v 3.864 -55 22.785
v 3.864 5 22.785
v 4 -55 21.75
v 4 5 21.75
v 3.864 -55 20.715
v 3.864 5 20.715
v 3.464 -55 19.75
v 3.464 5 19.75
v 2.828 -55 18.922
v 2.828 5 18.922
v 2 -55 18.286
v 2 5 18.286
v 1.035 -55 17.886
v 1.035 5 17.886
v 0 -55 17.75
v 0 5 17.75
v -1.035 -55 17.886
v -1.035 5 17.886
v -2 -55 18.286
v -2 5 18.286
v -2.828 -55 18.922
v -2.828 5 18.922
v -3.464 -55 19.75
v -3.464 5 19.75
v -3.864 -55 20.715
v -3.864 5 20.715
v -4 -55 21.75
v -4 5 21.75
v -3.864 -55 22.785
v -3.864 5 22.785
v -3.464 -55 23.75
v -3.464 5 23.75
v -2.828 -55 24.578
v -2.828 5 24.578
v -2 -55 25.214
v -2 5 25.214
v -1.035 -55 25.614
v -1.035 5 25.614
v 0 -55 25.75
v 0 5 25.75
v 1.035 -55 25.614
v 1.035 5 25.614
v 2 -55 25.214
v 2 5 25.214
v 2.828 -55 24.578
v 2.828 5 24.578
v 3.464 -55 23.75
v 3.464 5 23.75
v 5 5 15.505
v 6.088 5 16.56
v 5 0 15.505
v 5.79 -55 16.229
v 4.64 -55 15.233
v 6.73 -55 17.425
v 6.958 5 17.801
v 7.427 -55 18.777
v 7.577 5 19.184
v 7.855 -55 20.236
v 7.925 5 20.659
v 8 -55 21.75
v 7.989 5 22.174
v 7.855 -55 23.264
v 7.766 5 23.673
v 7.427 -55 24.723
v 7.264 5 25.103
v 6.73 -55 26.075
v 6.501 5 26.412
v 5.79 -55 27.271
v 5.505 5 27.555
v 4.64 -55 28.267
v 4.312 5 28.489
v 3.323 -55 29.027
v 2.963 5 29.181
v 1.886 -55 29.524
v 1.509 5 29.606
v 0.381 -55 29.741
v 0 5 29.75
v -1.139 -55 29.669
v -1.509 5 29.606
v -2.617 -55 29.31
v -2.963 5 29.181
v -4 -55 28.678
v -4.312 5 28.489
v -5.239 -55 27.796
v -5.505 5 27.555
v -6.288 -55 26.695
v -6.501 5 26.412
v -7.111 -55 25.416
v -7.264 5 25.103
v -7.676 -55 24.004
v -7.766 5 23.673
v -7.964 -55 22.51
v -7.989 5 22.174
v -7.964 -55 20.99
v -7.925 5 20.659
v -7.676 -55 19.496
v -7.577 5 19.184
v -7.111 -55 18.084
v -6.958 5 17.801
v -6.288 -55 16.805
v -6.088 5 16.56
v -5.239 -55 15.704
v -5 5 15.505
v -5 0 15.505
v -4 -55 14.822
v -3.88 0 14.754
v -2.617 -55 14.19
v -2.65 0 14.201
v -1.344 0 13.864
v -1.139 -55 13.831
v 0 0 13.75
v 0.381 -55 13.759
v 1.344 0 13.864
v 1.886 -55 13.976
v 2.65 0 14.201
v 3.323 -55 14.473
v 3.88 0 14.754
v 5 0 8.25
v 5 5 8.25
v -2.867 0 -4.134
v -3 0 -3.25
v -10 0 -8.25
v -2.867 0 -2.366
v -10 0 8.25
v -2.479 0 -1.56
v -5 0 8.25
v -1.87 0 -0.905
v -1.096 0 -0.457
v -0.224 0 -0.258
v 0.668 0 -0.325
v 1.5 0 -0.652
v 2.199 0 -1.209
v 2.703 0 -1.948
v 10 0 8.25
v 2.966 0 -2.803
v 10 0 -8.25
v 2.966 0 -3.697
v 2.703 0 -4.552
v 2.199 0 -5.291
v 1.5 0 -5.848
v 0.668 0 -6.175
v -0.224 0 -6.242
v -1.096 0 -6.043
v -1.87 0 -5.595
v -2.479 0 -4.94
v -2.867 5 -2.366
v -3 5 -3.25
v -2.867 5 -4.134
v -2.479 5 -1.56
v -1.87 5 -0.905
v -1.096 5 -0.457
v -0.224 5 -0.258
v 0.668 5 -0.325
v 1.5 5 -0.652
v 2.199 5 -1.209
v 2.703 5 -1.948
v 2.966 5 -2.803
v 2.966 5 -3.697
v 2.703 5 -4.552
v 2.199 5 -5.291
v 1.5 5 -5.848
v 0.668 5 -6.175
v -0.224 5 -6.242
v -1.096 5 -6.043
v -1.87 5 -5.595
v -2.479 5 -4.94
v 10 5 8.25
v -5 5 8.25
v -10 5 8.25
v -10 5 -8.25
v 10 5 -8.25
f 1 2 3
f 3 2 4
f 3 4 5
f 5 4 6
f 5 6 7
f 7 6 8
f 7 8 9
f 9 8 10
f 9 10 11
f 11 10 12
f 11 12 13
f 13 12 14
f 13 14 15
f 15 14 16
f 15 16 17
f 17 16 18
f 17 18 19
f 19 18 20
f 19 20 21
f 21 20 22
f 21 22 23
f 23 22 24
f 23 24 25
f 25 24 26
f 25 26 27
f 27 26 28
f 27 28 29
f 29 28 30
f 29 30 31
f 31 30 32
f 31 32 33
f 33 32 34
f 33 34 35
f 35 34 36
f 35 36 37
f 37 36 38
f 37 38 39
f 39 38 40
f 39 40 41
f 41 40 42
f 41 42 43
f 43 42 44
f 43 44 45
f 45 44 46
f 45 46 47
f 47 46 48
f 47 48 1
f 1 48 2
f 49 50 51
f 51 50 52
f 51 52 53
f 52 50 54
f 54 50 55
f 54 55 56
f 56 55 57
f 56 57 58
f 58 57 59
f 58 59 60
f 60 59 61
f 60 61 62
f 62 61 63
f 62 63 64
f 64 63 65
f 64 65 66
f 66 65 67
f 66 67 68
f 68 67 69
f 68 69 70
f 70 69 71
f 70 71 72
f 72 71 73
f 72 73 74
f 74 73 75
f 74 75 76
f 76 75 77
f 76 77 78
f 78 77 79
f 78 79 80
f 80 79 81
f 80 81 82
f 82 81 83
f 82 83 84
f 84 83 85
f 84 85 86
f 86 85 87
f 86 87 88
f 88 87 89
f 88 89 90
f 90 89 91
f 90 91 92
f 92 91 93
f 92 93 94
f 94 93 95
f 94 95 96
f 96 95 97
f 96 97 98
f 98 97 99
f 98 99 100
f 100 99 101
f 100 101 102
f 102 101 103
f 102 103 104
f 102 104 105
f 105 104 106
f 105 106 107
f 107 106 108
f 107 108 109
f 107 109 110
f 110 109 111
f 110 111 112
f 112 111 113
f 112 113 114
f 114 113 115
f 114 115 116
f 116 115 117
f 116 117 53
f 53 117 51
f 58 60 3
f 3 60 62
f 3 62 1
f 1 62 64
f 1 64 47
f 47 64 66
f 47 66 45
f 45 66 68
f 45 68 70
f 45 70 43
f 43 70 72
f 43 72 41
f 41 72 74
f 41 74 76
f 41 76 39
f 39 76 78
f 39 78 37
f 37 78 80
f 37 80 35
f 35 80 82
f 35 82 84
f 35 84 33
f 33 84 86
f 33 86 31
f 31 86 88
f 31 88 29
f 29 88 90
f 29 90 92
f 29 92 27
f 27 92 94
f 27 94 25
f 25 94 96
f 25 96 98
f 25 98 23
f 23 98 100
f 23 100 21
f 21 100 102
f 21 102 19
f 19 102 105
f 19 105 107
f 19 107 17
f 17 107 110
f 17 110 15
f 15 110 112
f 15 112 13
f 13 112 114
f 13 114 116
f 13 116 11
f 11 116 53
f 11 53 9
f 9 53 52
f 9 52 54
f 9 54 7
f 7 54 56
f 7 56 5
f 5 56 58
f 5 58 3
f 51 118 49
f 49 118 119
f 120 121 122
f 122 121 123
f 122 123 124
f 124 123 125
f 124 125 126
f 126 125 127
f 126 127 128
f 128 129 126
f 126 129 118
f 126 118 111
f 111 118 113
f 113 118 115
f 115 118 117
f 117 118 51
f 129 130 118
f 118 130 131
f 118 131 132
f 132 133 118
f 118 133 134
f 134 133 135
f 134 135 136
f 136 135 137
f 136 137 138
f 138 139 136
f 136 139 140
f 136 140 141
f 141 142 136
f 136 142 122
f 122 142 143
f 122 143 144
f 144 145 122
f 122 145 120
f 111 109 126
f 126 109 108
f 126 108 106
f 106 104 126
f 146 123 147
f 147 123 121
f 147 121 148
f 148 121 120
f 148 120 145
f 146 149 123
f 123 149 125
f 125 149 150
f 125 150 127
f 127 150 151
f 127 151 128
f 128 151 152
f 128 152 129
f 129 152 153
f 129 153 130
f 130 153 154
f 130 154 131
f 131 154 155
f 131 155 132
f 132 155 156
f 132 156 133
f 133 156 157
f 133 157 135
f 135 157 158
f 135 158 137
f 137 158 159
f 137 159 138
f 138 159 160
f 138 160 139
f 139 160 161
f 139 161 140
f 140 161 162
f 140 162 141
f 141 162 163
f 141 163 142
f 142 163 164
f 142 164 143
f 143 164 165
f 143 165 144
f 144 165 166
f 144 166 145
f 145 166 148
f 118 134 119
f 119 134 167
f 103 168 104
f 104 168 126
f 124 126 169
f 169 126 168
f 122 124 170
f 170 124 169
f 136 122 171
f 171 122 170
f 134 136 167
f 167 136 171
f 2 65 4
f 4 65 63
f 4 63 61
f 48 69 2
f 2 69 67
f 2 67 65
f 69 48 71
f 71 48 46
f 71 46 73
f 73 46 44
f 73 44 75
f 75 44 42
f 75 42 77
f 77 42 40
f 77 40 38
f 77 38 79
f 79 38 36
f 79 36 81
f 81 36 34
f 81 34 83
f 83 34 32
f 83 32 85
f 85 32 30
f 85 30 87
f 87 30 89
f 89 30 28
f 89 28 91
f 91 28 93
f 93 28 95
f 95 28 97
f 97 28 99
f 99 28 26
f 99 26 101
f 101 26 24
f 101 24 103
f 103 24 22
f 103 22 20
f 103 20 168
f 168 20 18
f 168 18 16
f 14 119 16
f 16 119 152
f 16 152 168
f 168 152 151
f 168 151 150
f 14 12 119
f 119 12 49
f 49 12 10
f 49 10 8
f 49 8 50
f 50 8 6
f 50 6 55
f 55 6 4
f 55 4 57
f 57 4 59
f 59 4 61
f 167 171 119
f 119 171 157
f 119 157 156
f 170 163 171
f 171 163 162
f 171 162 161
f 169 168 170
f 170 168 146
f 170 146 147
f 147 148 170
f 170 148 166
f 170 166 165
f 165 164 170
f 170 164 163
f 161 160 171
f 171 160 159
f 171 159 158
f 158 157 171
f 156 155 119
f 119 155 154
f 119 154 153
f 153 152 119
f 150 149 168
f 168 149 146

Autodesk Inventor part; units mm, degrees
ref_plane "YZ Plane" through (0, 0, 0) normal (1, 0, 0) x (0, 1, 0)
ref_plane "XZ Plane" through (0, 0, 0) normal (0, 1, 0) x (-1, 0, 0)
ref_plane "XY Plane" through (0, 0, 0) normal (0, 0, 1) x (1, 0, 0)
sketch "Skizze1" plane through (0, 0, 0) normal (0, 1, 0) x (-1, 0, 0)
  line L0 (10, -8.25) -> (-10, -8.25)
  line L1 (-10, -8.25) -> (-10, 8.25)
  line L2 (-10, 8.25) -> (10, 8.25)
  line L3 (10, 8.25) -> (10, -8.25)
  line L4 (14, 0) -> (-14, 0) projected
  line L5 (0, -16.2) -> (0, 37.7) projected
  circle A0 centre (0, -3.25) radius 3
  line L6 (5, 8.25) -> (-5, 8.25)
  line L7 (-5, 8.25) -> (-5, 16.25)
  line L8 (-5, 16.25) -> (5, 16.25)
  line L9 (5, 16.25) -> (5, 8.25)
  point P0 (0, 0)
  point P1 (-5, 8.25)
  dimension "d0" = 20
  dimension "d1" = 16.5
  dimension "d2" = 6
  dimension "d3" = 11.5
  dimension "d13" = 10
  dimension "d14" = 8
extrude "Extrusion1" add sketch "Skizze1" along normal blind 5 contours L0 L5 A0 L4 L3 | L0 L1 L4 L5 A0 | L4 L5 L2 L3 | L4 L1 L2 L5 | L2 L5 L8 L9 | L2 L7 L8 L5
sketch "Skizze2" plane through (0, 5, 0) normal (0, 1, 0) x (1, 0, 0)
  line L0 (10, -8.25) -> (10, 8.25) projected
  line L1 (10, 8.25) -> (-10, 8.25) projected
  line L2 (-10, 8.25) -> (-10, -8.25) projected
  line L3 (-10, -8.25) -> (-5, -8.25) projected
  circle A0 centre (0, 3.25) radius 3 projected
  line L4 (-2, -8.25) -> (3, -8.25)
  line L5 (-14, 0) -> (14, 0) projected
  line L6 (0, 16.2) -> (0, -37.7) projected
  line L7 (-2.5, -18.25) -> (2.5, -18.25)
  line L8 (2.5, -18.25) -> (2.5, -13.25)
  line L9 (2.5, -13.25) -> (-2.5, -13.25)
  line L10 (-2.5, -13.25) -> (-2.5, -18.25)
  line L11 (-5, -8.25) -> (-5, -16.25) projected
  line L12 (-5, -16.25) -> (5, -16.25) projected
  line L13 (5, -16.25) -> (5, -8.25) projected
  line L14 (5, -8.25) -> (10, -8.25) projected
  circle A1 centre (0, 3.25) radius 3 projected
  circle A2 centre (0, -21.75) radius 4
  circle A3 centre (0, -21.75) radius 8
  line L15 (0, -13.75) -> (0, 3.25)
  point P0 (0, 0)
  dimension "d10" = 5
  dimension "d11" = 5
  dimension "d12" = 5
  dimension "d21" = 8
  dimension "d22" = 25
  dimension "d23" = 4
extrude "Extrusion2" add sketch "Skizze2" against normal blind 60 contours A3 L6 A2 L7 L8 L12 L13 | L13 L12 L8 A3 | L8 L12 L6 A3 | L8 L7 A2 L6 L12 | A3 L11 L12 L10 L7 A2 L6 | L6 L12 L10 A3 | L6 A2 L7 L10 L12 | A3 L10 L12 L11
properties part number "Absicherung Kugellager"
